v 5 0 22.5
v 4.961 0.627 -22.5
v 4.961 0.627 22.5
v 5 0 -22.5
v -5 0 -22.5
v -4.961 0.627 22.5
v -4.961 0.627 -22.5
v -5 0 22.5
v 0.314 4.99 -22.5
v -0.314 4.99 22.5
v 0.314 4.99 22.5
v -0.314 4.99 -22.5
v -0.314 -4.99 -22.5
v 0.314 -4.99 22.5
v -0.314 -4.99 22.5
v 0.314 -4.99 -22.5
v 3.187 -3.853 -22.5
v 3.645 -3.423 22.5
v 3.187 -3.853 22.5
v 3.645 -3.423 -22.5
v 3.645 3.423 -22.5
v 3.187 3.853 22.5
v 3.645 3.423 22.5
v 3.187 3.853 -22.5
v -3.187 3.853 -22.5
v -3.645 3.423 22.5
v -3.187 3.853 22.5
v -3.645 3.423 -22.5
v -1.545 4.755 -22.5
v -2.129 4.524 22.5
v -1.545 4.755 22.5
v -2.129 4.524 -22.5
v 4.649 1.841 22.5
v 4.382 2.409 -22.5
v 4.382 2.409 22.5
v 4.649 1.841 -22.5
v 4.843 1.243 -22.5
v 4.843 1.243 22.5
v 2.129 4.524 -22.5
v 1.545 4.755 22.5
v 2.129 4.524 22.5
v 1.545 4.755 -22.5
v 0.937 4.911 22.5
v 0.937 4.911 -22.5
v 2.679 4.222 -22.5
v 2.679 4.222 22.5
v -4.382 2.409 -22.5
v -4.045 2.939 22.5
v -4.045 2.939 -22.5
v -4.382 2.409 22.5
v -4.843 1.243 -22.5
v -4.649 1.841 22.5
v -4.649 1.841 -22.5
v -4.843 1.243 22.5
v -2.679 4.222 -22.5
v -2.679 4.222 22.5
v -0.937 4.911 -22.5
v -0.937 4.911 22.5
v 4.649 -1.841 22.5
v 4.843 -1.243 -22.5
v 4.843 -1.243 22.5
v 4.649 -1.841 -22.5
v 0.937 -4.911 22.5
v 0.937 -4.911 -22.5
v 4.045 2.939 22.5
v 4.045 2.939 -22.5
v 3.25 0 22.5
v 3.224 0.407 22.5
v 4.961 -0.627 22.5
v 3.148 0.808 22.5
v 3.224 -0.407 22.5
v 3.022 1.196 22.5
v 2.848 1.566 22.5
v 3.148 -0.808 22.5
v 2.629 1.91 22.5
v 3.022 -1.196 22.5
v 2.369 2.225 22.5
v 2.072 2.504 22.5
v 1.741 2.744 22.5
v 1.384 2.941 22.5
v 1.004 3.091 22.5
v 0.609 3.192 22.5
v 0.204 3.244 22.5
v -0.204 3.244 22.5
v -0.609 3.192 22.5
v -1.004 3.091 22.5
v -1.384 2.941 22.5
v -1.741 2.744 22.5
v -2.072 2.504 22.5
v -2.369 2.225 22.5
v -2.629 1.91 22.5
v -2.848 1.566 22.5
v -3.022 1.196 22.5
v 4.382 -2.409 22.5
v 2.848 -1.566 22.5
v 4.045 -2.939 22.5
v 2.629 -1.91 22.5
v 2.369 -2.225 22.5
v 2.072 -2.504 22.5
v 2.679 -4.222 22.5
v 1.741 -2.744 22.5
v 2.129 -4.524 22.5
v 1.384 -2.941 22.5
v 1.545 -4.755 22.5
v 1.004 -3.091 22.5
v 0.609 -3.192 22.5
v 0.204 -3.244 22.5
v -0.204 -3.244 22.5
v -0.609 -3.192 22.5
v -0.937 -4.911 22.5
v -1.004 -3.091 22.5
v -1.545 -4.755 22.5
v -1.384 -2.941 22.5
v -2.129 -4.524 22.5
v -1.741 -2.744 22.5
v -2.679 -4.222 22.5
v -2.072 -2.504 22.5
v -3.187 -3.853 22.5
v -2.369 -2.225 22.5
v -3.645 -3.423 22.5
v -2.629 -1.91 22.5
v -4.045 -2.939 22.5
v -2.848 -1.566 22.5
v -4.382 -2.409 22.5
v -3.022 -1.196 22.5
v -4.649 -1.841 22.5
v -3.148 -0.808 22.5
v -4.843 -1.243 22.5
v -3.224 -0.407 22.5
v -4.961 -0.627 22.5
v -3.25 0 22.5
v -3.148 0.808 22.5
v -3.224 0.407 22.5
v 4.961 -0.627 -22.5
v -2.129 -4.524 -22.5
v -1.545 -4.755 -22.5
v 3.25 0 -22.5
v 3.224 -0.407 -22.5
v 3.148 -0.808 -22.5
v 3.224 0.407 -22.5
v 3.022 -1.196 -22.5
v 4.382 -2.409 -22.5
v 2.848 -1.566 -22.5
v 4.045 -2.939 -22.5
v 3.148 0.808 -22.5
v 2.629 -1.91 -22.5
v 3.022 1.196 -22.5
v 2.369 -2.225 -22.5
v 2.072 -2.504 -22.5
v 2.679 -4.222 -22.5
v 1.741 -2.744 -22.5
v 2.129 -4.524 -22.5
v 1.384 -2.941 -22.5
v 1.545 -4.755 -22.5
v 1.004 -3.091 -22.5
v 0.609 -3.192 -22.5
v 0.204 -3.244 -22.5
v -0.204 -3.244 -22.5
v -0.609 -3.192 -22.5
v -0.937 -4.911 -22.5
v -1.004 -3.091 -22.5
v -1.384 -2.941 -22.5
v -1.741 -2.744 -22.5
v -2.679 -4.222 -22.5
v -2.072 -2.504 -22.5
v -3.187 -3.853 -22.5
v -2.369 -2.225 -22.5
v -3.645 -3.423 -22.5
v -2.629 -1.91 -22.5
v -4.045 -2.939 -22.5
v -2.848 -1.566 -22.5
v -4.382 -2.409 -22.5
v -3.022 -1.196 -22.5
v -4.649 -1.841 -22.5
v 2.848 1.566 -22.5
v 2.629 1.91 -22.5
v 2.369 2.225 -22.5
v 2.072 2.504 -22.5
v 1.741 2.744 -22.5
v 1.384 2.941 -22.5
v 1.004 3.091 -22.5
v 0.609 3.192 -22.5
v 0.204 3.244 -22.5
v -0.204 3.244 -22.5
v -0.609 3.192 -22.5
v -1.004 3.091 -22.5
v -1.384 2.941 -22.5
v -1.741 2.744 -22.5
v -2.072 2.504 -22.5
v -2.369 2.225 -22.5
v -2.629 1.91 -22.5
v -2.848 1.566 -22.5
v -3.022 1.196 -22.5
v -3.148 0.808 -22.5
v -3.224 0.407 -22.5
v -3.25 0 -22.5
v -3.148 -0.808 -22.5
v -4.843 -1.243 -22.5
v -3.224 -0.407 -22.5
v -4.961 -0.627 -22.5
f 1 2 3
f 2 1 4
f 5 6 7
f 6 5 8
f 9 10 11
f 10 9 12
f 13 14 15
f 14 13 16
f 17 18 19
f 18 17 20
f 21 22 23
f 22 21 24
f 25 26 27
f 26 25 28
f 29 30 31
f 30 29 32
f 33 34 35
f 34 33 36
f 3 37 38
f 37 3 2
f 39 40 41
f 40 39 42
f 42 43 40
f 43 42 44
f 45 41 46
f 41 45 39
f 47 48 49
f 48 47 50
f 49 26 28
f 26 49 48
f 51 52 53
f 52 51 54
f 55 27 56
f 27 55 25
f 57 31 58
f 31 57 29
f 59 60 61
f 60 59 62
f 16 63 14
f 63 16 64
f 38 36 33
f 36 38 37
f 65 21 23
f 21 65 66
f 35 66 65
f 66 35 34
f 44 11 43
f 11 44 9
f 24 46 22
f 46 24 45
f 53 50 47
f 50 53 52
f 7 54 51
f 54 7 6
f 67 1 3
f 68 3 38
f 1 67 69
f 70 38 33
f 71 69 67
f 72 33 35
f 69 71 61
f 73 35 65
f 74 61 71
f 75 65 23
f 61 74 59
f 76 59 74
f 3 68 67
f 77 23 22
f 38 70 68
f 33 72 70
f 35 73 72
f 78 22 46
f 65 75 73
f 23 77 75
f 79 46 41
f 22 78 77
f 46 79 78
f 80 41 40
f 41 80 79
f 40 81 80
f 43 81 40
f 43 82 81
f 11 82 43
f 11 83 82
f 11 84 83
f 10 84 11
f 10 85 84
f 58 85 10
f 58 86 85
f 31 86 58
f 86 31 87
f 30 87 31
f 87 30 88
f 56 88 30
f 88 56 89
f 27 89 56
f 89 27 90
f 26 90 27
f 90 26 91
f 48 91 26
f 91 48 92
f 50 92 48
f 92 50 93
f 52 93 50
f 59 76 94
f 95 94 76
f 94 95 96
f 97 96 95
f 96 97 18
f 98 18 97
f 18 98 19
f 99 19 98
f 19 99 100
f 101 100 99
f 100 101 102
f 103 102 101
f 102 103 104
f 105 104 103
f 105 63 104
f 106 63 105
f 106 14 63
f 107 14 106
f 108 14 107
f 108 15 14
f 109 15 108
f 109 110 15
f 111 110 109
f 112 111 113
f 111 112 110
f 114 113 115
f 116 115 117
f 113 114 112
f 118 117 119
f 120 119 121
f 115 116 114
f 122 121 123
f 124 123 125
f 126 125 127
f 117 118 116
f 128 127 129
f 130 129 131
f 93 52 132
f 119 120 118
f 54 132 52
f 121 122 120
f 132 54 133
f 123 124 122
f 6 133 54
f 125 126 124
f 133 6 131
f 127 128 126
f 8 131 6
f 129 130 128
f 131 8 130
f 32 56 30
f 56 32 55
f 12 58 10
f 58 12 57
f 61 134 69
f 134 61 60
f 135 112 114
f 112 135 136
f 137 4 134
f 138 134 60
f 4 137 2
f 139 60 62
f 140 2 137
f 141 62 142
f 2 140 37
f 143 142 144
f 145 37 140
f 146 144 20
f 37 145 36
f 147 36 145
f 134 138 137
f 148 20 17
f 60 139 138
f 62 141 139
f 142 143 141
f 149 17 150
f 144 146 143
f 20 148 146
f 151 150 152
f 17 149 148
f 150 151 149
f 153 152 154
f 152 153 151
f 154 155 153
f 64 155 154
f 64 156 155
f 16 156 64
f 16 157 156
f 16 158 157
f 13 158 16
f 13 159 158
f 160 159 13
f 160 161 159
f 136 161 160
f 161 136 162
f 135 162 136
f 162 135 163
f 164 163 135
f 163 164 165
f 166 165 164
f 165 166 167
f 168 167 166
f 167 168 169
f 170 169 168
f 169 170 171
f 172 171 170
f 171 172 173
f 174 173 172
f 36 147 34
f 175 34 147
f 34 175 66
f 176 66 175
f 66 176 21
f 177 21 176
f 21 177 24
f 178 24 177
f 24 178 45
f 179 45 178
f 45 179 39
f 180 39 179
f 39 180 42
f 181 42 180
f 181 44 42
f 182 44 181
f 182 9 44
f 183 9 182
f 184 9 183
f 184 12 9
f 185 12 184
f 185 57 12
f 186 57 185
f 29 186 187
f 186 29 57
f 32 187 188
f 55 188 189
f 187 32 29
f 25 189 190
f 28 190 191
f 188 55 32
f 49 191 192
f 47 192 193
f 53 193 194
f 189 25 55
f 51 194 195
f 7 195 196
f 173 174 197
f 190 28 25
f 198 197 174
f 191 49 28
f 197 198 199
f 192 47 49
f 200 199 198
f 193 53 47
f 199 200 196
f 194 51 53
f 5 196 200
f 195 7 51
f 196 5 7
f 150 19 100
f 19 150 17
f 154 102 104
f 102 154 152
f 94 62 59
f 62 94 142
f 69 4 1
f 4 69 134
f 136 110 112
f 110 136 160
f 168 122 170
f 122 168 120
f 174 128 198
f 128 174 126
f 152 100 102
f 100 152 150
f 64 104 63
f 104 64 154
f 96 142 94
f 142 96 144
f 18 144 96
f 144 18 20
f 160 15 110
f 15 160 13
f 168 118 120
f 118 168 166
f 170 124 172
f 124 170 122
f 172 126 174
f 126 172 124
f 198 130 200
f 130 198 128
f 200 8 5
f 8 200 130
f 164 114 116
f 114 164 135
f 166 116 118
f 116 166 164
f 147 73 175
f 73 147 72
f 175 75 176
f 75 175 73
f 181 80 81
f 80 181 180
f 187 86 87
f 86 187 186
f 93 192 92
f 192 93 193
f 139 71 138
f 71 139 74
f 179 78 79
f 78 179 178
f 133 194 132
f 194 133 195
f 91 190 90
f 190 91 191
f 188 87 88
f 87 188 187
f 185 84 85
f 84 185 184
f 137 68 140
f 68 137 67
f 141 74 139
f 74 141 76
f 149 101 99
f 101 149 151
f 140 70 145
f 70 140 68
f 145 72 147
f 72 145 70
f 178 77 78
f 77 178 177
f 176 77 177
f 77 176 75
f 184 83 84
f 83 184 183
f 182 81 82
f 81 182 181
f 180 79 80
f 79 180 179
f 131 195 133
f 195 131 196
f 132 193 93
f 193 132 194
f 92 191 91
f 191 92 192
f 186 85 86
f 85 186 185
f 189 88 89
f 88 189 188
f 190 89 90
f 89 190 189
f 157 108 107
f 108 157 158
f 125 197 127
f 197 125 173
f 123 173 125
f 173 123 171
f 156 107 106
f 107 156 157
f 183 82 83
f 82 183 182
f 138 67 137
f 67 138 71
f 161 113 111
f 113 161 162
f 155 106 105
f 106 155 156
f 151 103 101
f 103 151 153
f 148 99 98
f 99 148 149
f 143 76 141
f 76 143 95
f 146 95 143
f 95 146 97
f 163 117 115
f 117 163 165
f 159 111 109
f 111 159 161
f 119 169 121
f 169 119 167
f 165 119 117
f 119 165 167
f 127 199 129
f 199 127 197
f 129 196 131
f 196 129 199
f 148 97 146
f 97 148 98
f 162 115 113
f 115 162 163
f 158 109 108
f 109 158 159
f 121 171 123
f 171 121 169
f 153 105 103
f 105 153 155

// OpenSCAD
$fn = 50;


difference() {
	union() {
		translate(v = [0, 0, -22.5000000000]) {
			cylinder(h = 45, r = 5.0000000000);
		}
	}
	union() {
		translate(v = [0, 0, -100.0000000000]) {
			cylinder(h = 200, r = 3.2500000000);
		}
	}
}
